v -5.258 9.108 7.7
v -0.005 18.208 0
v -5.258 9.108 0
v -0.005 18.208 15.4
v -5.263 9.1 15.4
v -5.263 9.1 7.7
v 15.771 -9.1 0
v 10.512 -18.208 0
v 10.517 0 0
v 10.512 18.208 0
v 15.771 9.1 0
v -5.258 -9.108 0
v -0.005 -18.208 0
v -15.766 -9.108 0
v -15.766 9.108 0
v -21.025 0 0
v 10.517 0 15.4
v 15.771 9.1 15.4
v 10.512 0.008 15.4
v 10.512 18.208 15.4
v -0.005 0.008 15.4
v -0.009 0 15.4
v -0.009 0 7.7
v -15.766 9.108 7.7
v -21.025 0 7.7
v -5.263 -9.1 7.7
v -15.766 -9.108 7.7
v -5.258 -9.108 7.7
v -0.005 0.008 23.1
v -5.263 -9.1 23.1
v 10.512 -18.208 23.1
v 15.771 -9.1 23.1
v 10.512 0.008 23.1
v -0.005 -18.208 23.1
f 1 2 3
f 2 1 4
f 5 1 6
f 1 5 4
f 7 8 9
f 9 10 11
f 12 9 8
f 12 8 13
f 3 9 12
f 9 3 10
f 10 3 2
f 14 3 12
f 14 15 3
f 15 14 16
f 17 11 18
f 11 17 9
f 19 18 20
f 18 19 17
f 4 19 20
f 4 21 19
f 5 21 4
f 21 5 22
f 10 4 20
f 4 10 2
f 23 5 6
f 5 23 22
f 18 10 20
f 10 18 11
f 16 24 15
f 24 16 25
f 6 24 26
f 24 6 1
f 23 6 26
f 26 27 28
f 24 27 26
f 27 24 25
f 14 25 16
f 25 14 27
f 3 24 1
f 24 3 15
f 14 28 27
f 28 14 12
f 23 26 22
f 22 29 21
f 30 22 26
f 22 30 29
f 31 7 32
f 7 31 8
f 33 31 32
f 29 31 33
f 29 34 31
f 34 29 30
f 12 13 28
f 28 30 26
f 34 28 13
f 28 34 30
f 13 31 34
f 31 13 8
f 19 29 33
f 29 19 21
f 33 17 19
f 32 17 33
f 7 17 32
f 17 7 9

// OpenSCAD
// file: dimensions.scad
measureX = 9.10; // 92/2/2/sqrt(19)*sqrt(3)
measureY = 9.10; 
measureZ = 7.7; // 54/7 is about 7.7

halfSide = 1*tan(30);
h1 = 1;
dd = 0.001;
// main file
include <dimensions.scad>

hh = [2,1,3];

scale([measureX,measureY,measureZ])  union() {
    translate([halfSide,1,0]) 
    linear_extrude(height = hh[0]*h1, center = false)
    circle(2*halfSide + dd,$fn=6);
    
    translate([-2*halfSide,0,0]) 
    linear_extrude(height = hh[1]*h1, center = false)
    circle(2*halfSide + dd,$fn=6);
    
    translate([halfSide,-1,0]) 
    linear_extrude(height = hh[2]*h1, center = false)
    circle(2*halfSide + dd,$fn=6);
}
